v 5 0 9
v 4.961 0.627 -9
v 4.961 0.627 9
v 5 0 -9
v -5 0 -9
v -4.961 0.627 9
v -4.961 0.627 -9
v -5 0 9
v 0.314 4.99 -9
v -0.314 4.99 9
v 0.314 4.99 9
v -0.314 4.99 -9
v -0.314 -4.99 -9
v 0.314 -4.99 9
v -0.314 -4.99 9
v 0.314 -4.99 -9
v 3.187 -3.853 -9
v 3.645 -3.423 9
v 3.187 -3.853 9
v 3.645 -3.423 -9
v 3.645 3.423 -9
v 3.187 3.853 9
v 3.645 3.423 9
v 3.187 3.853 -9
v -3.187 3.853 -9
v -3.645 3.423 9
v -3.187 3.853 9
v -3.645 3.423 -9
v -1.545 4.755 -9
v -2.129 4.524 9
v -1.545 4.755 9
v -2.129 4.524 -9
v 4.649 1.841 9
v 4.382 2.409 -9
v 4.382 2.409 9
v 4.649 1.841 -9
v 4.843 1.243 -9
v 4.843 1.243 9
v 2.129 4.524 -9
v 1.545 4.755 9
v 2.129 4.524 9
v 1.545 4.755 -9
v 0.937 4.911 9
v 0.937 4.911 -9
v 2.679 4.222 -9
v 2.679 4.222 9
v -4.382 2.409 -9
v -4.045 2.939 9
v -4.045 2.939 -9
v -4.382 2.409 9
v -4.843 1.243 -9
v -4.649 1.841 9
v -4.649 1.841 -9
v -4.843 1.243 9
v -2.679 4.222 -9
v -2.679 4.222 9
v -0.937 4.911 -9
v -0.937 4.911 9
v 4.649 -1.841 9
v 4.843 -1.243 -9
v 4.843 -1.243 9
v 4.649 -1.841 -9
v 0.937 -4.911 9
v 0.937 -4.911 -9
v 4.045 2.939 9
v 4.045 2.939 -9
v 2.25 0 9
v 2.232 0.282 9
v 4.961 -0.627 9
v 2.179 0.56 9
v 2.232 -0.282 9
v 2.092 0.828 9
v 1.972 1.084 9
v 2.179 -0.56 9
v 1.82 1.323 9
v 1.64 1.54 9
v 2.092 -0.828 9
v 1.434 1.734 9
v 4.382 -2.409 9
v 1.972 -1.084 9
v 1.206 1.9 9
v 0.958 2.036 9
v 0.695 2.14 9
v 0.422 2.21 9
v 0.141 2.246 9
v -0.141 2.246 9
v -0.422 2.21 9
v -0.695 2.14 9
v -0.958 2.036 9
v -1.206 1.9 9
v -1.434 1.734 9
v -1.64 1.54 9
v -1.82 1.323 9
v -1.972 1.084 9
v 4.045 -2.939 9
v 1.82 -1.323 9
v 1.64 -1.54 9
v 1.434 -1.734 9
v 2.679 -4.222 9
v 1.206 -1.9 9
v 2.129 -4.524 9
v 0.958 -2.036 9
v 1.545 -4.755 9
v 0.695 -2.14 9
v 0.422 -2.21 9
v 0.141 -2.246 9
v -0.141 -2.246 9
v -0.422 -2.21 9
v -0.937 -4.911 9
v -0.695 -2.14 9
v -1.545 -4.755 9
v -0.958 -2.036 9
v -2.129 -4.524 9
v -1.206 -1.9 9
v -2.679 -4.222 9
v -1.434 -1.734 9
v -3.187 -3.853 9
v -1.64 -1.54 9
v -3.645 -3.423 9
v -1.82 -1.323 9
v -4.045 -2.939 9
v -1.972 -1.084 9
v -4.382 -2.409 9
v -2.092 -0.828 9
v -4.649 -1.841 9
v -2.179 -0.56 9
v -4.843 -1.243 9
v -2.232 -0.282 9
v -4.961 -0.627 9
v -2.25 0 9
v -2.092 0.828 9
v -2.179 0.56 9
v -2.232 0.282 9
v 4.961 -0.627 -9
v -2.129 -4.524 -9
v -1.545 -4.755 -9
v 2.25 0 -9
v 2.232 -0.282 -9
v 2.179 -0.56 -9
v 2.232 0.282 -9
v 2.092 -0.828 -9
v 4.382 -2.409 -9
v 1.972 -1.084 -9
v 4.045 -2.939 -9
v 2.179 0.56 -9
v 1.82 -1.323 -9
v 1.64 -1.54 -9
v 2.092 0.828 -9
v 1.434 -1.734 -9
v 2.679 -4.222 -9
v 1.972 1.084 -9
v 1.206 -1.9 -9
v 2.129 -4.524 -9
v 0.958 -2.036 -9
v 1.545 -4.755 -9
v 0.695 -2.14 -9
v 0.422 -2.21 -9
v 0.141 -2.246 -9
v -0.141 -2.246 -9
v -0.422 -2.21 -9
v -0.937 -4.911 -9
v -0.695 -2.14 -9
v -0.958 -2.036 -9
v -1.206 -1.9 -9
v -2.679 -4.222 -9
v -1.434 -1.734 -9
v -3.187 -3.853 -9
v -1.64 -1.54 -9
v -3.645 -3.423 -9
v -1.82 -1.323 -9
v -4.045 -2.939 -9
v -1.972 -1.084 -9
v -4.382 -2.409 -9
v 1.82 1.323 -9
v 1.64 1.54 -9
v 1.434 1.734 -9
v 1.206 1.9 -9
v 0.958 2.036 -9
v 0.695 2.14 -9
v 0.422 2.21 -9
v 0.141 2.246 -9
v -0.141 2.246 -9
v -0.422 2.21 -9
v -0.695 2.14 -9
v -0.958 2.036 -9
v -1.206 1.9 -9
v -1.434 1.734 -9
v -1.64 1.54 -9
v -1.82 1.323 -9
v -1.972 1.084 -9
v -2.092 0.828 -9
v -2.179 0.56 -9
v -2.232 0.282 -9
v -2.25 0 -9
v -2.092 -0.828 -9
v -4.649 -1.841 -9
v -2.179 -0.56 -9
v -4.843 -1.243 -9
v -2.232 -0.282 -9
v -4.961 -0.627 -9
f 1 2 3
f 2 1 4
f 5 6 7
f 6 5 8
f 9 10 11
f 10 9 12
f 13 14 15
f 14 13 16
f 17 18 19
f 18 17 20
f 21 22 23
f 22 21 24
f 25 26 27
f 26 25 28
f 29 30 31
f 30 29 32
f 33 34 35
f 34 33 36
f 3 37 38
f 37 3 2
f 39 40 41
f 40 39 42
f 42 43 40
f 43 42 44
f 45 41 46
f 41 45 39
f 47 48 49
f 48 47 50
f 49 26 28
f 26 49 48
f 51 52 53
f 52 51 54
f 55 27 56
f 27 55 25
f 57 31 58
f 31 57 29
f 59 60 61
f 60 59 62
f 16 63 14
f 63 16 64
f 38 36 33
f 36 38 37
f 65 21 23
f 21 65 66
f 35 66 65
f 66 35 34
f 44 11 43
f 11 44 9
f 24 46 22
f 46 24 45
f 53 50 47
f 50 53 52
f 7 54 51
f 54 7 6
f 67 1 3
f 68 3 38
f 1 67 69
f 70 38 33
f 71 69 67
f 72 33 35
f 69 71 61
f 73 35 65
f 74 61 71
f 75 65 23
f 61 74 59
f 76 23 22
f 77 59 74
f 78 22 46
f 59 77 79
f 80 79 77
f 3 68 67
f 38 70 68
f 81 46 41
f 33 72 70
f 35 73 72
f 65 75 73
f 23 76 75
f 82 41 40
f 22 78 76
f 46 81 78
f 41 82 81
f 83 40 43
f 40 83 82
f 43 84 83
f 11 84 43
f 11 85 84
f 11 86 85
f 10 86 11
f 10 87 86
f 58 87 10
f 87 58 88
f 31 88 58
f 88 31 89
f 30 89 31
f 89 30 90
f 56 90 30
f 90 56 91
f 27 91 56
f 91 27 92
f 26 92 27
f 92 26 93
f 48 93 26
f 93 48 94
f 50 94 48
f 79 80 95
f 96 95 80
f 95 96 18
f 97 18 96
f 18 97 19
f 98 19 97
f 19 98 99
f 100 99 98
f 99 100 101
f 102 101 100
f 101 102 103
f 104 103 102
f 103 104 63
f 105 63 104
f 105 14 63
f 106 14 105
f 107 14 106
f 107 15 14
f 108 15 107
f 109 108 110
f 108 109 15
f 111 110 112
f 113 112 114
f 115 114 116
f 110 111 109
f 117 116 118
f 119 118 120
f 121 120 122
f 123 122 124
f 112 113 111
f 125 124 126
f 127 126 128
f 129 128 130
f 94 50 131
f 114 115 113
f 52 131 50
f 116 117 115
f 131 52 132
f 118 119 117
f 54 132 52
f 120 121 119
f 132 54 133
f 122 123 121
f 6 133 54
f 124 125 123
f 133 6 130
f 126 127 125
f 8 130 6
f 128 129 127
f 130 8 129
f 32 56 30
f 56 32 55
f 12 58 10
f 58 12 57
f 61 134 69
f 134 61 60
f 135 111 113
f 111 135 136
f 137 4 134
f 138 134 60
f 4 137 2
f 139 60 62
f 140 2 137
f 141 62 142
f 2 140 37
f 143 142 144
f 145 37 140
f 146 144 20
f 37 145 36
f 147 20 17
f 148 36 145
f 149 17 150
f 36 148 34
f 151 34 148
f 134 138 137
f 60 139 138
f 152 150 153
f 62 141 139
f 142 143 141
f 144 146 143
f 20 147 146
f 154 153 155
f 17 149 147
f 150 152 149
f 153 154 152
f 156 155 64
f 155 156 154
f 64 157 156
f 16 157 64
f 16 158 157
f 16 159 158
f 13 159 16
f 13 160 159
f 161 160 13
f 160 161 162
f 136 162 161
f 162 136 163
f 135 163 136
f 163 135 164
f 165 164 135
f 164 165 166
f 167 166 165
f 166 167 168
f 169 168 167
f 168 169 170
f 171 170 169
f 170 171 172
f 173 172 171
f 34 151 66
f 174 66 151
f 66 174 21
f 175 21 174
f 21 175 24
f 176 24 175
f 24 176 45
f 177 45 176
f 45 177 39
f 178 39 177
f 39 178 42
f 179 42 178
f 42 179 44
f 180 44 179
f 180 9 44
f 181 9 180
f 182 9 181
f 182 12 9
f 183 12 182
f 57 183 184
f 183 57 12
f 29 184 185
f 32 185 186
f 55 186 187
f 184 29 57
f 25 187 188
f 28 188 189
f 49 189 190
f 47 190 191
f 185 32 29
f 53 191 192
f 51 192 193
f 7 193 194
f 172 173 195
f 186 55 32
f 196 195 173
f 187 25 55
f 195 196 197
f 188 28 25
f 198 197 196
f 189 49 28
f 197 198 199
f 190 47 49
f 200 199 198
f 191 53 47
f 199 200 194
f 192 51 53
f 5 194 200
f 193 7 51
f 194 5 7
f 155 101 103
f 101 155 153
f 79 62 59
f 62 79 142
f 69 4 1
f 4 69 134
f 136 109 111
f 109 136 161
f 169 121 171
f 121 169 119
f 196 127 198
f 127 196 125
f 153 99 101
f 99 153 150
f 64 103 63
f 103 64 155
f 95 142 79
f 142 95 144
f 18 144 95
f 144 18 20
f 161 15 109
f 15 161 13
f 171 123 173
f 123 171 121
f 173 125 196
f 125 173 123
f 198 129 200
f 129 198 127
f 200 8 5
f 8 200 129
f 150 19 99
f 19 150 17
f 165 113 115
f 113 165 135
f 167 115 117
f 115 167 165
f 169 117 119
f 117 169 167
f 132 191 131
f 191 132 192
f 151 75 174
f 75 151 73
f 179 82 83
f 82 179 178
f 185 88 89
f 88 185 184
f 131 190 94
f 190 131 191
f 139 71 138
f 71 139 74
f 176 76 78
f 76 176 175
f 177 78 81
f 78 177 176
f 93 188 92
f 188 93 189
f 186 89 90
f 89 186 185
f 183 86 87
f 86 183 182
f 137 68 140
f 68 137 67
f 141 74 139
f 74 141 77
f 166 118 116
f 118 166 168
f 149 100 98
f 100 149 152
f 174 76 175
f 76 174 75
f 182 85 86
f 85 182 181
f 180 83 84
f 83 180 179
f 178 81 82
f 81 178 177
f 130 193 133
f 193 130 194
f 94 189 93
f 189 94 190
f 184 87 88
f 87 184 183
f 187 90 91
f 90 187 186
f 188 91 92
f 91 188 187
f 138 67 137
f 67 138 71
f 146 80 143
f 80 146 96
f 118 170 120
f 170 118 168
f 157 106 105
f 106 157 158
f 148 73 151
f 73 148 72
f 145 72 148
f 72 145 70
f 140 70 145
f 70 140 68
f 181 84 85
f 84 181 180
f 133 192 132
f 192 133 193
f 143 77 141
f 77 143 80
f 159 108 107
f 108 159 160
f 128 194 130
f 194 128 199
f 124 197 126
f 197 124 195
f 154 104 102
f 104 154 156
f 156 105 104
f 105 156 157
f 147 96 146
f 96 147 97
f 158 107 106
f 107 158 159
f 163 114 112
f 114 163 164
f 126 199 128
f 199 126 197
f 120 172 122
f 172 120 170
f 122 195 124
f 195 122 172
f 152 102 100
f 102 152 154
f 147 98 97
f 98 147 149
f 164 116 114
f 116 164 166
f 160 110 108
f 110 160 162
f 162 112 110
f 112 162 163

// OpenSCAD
$fn = 50;


difference() {
	union() {
		translate(v = [0, 0, -9.0000000000]) {
			cylinder(h = 18, r = 5.0000000000);
		}
	}
	union() {
		translate(v = [0, 0, -100.0000000000]) {
			cylinder(h = 200, r = 2.2500000000);
		}
	}
}
